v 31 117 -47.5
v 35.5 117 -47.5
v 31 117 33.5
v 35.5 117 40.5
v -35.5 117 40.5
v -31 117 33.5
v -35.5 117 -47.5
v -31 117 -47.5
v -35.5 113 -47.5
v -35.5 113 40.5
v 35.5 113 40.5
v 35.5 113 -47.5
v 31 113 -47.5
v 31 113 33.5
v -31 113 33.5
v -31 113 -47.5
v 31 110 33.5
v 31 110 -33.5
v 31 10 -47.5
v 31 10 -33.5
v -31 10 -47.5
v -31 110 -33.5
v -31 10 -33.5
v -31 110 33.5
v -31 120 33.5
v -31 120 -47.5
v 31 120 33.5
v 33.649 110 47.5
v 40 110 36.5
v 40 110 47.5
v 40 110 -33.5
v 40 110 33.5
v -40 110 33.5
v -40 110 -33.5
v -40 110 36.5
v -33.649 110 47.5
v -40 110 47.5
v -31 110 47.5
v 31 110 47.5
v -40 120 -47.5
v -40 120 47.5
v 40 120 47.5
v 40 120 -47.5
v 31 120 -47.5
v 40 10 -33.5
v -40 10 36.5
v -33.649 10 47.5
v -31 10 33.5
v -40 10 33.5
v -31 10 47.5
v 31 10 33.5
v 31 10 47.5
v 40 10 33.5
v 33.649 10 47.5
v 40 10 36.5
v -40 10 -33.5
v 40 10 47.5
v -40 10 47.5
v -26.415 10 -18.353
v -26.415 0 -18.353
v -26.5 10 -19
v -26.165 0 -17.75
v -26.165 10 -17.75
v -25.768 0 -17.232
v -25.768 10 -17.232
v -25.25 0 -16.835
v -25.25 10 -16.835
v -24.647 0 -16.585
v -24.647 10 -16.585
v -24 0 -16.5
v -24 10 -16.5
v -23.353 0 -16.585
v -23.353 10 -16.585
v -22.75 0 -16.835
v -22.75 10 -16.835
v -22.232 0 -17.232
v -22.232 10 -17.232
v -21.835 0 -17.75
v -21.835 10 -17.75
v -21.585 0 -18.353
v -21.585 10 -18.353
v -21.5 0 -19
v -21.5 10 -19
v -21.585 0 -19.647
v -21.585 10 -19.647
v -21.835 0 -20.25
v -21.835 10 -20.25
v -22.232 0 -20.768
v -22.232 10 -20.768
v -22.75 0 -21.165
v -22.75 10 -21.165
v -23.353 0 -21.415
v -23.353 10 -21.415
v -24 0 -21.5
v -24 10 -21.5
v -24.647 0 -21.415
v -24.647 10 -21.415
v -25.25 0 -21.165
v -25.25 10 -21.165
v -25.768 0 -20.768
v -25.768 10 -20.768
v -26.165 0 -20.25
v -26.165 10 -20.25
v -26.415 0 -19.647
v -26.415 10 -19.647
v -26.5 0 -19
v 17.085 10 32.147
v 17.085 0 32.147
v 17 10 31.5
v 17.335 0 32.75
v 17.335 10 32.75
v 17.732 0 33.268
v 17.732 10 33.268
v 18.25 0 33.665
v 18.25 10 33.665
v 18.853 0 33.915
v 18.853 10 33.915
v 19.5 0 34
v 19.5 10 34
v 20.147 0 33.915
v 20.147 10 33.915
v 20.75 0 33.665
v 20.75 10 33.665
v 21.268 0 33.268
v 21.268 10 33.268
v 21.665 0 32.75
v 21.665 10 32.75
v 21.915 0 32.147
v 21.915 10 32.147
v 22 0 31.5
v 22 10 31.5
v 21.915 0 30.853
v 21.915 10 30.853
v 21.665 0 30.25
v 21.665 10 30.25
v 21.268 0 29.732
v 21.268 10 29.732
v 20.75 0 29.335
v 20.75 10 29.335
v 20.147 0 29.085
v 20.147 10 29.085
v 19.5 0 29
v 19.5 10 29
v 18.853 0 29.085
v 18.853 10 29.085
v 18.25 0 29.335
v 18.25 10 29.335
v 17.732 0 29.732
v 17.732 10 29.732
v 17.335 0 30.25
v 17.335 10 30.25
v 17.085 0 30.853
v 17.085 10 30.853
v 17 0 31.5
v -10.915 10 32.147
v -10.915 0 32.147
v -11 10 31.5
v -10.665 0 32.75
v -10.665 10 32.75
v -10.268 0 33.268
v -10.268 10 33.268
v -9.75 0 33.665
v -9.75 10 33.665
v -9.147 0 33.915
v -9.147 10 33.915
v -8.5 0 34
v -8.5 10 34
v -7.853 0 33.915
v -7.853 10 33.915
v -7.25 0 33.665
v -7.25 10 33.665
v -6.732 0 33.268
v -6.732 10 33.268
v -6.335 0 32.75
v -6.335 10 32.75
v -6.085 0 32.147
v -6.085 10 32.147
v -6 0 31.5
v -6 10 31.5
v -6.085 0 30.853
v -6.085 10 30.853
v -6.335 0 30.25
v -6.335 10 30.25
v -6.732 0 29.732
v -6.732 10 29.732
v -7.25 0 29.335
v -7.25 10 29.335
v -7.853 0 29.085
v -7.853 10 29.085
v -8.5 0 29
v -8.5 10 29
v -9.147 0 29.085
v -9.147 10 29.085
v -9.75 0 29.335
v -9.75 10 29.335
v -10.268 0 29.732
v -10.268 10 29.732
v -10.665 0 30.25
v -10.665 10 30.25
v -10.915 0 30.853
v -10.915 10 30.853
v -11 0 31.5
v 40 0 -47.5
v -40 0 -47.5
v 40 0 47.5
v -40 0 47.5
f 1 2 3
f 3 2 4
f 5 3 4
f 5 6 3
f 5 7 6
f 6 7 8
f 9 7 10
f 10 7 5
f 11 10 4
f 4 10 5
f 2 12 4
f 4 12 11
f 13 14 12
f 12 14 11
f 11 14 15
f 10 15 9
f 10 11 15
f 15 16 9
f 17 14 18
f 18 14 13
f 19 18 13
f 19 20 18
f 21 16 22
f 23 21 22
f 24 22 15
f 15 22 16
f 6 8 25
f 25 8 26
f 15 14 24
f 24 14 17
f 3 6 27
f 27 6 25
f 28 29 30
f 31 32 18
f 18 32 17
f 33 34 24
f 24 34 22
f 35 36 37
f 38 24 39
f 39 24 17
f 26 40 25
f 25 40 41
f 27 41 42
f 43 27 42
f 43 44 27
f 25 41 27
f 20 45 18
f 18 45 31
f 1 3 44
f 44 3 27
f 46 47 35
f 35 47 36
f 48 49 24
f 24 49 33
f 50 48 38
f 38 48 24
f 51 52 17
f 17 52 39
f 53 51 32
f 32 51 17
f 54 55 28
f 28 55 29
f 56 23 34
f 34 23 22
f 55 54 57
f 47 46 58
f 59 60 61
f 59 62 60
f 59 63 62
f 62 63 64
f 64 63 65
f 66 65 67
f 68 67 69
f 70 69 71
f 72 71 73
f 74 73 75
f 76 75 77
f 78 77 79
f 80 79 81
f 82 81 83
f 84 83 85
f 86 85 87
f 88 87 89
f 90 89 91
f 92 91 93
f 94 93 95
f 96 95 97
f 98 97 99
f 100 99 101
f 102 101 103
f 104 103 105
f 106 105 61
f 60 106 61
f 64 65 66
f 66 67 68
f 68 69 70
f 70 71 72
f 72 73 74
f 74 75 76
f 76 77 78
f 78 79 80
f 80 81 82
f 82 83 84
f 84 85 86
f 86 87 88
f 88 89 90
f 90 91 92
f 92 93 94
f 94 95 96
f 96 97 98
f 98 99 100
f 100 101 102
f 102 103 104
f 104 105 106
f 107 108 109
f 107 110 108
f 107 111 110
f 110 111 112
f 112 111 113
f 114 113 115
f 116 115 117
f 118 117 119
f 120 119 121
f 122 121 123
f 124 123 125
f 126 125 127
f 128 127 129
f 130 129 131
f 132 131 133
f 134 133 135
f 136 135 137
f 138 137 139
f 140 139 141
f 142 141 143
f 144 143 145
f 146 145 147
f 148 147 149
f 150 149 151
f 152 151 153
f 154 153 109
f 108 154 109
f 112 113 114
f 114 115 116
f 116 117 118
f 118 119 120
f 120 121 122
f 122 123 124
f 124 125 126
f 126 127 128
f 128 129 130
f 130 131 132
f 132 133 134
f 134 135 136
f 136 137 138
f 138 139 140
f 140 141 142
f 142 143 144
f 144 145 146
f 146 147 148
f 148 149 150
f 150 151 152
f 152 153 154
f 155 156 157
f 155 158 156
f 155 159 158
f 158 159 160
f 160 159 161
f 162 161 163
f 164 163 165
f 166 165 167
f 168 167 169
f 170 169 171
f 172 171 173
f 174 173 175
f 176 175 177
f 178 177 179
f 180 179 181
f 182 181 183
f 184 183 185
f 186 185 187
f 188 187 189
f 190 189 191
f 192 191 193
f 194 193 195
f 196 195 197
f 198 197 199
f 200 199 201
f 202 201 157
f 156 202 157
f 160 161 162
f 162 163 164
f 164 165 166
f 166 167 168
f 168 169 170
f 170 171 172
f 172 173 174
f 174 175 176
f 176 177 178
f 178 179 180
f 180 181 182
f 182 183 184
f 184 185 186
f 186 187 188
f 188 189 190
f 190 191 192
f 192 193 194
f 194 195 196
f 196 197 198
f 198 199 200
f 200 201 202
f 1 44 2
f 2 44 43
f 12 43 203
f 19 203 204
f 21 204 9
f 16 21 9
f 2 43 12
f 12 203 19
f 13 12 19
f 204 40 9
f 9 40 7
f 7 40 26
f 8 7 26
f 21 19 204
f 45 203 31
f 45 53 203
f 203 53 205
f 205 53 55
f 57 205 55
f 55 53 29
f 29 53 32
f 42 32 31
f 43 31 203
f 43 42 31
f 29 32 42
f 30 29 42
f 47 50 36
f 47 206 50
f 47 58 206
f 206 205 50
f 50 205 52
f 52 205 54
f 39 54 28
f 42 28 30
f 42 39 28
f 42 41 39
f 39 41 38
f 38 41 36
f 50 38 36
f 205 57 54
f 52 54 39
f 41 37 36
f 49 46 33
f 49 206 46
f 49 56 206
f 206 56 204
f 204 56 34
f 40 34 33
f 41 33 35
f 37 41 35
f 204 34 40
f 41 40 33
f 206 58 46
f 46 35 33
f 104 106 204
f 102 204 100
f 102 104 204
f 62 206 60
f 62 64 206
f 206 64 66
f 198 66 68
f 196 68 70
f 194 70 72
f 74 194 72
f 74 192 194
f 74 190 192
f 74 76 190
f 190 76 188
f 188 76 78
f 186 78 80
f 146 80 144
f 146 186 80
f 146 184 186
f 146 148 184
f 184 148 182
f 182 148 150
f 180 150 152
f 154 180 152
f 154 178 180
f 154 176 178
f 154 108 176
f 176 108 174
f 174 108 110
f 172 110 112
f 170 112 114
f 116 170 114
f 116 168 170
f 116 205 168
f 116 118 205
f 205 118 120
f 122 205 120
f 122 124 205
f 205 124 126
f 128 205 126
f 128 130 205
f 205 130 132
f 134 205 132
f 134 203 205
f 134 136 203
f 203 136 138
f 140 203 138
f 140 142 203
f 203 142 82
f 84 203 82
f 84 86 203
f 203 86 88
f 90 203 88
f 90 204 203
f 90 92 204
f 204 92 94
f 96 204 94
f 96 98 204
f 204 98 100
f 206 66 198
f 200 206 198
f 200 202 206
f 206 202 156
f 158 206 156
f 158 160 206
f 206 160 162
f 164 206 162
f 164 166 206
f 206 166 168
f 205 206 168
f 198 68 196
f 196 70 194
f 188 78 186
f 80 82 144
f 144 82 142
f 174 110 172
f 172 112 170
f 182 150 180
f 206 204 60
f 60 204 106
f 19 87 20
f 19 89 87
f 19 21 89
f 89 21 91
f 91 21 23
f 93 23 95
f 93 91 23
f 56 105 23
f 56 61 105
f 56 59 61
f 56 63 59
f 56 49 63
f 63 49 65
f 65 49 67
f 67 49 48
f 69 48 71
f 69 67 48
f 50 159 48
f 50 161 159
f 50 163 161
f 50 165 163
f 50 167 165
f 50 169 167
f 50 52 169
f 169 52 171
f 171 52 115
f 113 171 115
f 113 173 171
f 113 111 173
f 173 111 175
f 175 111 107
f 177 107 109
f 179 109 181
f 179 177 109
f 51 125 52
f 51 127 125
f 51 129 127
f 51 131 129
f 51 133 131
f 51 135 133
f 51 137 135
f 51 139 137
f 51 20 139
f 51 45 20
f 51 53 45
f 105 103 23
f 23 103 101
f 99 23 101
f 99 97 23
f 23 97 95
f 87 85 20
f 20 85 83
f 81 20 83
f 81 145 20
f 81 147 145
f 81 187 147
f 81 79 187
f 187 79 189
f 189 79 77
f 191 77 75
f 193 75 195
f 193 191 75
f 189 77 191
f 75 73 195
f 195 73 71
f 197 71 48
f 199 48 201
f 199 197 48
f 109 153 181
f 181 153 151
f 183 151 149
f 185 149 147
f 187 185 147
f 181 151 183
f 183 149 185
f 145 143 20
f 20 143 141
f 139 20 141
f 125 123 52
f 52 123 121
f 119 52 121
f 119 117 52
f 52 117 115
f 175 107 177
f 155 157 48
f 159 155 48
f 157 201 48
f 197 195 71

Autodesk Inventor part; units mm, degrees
ref_plane "YZ Plane" through (0, 0, 0) normal (1, 0, 0) x (0, 1, 0)
ref_plane "XZ Plane" through (0, 0, 0) normal (0, 1, 0) x (-1, 0, 0)
ref_plane "XY Plane" through (0, 0, 0) normal (0, 0, 1) x (1, 0, 0)
sketch "Sketch1" plane through (0, 0, 0) normal (0, 1, 0) x (-1, 0, 0)
  line L0 (-40, -47.5) -> (40, -47.5)
  line L1 (40, -47.5) -> (40, 47.5)
  line L2 (40, 47.5) -> (-40, 47.5)
  line L3 (-40, 47.5) -> (-40, -47.5)
  line L4 (-40, -47.5) -> (40, 47.5) construction
  line L5 (40, -47.5) -> (-40, 47.5) construction
  line L6 (0, 0) -> (0, -31.5)
  line L7 (0, -31.5) -> (8.5, -31.5)
  line L8 (0, 0) -> (2.25, 0)
  line L9 (0, 0) -> (0, 17.5)
  line L10 (0, 17.5) -> (0, 19)
  line L11 (0, 19) -> (24, 19)
  line L12 (0, -17.5) -> (0, -19)
  line L13 (0, 31.5) -> (-19.5, 31.5)
  line L14 (0, 0) -> (0, 31.5)
  line L15 (0, 31.5) -> (8.5, 31.5)
  circle A0 centre (8.5, 31.5) radius 2.5
  line L16 (0, -19) -> (24, -19)
  circle A1 centre (24, -19) radius 2.5
  line L17 (0, 0) -> (0, -17.5)
  circle A2 centre (-19.5, 31.5) radius 2.5
  circle A3 centre (-19.5, 31.5) radius 2.5
  point P0 (0.5, 0.75)
  point P1 (0.5, -0.75)
  dimension "d0" = 80
  dimension "d1" = 95
  dimension "d2" = 17.5
  dimension "d3" = 8.5
  dimension "d5" = 31.5
  dimension "d6" = 24
  dimension "d7" = 2.25
  dimension "d12" = 19.5
extrude "Extrusion1" add sketch "Sketch1" along normal blind 10
sketch "Sketch2" plane through (0, 10, 0) normal (0, 1, 0) x (1, 0, 0)
  line L0 (-40, -47.5) -> (40, -47.5) projected
  line L1 (-40, -47.5) -> (-40, -36.5)
  line L2 (-40, 47.5) -> (-40, -47.5) projected
  line L3 (-40, -36.5) -> (-33.6491, -47.5)
  line L4 (-40, -36.5) -> (-27.2983, -36.5) construction
  line L5 (-33.6491, -47.5) -> (-33.6491, -43.5)
  line L6 (-40, -36.5) -> (-40, -33.5)
  line L7 (-33.6491, -47.5) -> (-33.6491, -45.5)
  line L8 (-32.6491, -47.5) -> (-31.6491, -47.5)
  line L9 (0, 0) -> (0, -47.5)
  line L10 (-40, -33.5) -> (-31, -33.5)
  line L11 (-31, -33.5) -> (-31, -47.5)
  line L12 (-33.6491, -47.5) -> (-31, -47.5)
  line L13 (40, -47.5) -> (40, -36.5)
  line L14 (40, -36.5) -> (33.6491, -47.5)
  line L15 (40, -36.5) -> (27.2983, -36.5) construction
  line L16 (33.6491, -47.5) -> (33.6491, -43.5)
  line L17 (40, -36.5) -> (40, -33.5)
  line L18 (33.6491, -47.5) -> (33.6491, -45.5)
  line L19 (32.6491, -47.5) -> (31.6491, -47.5)
  line L20 (40, -33.5) -> (31, -33.5)
  line L21 (31, -33.5) -> (31, -47.5)
  line L22 (33.6491, -47.5) -> (31, -47.5)
  line L23 (-40, 47.5) -> (-31, 47.5)
  line L24 (-31, 47.5) -> (-31, 33.5)
  line L25 (-31, 33.5) -> (-40, 33.5)
  line L26 (-40, 33.5) -> (-40, 47.5)
  line L27 (40, -47.5) -> (40, 47.5) projected
  line L28 (40, 47.5) -> (31, 47.5)
  line L29 (31, 47.5) -> (31, 33.5)
  line L30 (31, 33.5) -> (40, 33.5)
  line L31 (40, 33.5) -> (40, 47.5)
  dimension "d15" = 11
  dimension "d16" = 60
  dimension "d18" = 3
  dimension "d20" = 2
  dimension "d21" = 9
  dimension "d22" = 9
  dimension "d23" = 14
  dimension "d24" = 9
  dimension "d25" = 14
extrude "Extrusion2" add sketch "Sketch2" along normal blind 100 contours L2 L23 L24 L25 | L30 L29 L28 L27 | L21 L20 L17 L14 L0 | L3 L2 L10 L11 L0
sketch "Sketch4" plane through (0, 110, 0) normal (0, 1, 0) x (1, 0, 0)
  line L0 (-40, 47.5) -> (-40, 33.5) projected
  line L1 (-40, 33.5) -> (-31, 33.5) projected
  line L2 (-31, 33.5) -> (-31, 47.5) projected
  line L3 (-31, 47.5) -> (-40, 47.5) projected
  line L4 (40, 47.5) -> (31, 47.5) projected
  line L5 (31, 47.5) -> (31, 33.5) projected
  line L6 (31, 33.5) -> (40, 33.5) projected
  line L7 (40, 33.5) -> (40, 47.5) projected
  line L8 (33.6491, -47.5) -> (40, -36.5) projected
  line L9 (40, -36.5) -> (40, -33.5) projected
  line L10 (40, -33.5) -> (31, -33.5) projected
  line L11 (31, -33.5) -> (31, -47.5) projected
  line L12 (31, -47.5) -> (33.6491, -47.5) projected
  line L13 (-31, -47.5) -> (-31, -33.5) projected
  line L14 (-33.6491, -47.5) -> (-31, -47.5) projected
  line L15 (-31, -47.5) -> (-31, -33.5) projected
  line L16 (-31, -33.5) -> (-40, -33.5) projected
  line L17 (-40, -33.5) -> (-40, -36.5) projected
  line L18 (-40, -36.5) -> (-33.6491, -47.5) projected
  line L19 (-33.6491, -47.5) -> (-40, -36.5) projected
  line L20 (-40, -36.5) -> (-40, -47.5) projected
  line L21 (-40, -47.5) -> (-33.6491, -47.5) projected
  line L22 (40, -36.5) -> (33.6491, -47.5) projected
  line L23 (33.6491, -47.5) -> (40, -47.5) projected
  line L24 (40, -47.5) -> (40, -36.5) projected
  line L25 (-40, 47.5) -> (40, 47.5) projected
  line L26 (-40, 47.5) -> (-40, -47.5)
  line L27 (40, -47.5) -> (-40, -47.5) projected
  line L28 (-40, -47.5) -> (40, -47.5)
  line L29 (40, -47.5) -> (40, 47.5)
  line L30 (31, 33.5) -> (31, 47.5) projected
  line L31 (31, 47.5) -> (40, 47.5)
  line L32 (31, 47.5) -> (31, -33.5)
  line L33 (40, -33.5) -> (31, -33.5) projected
  line L34 (-40, -33.5) -> (-31, -33.5) projected
  line L35 (31, -33.5) -> (-31, -33.5)
  line L36 (-31, -33.5) -> (-31, 47.5)
  line L37 (-31, 47.5) -> (-31, 33.5) projected
  line L38 (-40, 47.5) -> (-31, 47.5)
  line L39 (-31, 47.1909) -> (-31, 33.5)
  line L40 (-40, 47.5) -> (-40, 33.5) projected
  line L41 (-31, 33.5) -> (-40, 33.5)
  line L42 (31, 33.5) -> (40, 33.5) projected
  line L43 (31, 33.5) -> (40, 33.5)
  point P0 (0, 0)
extrude "Extrusion3" add sketch "Sketch4" along normal blind 10 contours L3 L2 L1 L0 | L1 L36 L16 L26 | L16 L13 L14 L18 L17 | L4 L7 L6 L5 | L35 L11 L27 L13 | L18 L21 L20 | L6 L29 L10 L32 | L10 L9 L8 L12 L11 | L8 L24 L23
sketch "Sketch5" plane through (40, 0, -47.5) normal (0, 0, -1) x (-1, 0, 0)
  line L0 (80, 0) -> (0, 0) projected
  line L1 (80, 0) -> (80, 120) projected
  line L2 (71, 120) -> (80, 120) projected
  line L3 (71, 10) -> (71, 120) projected
  line L4 (9, 10) -> (71, 10) projected
  line L5 (9, 10) -> (9, 120) projected
  line L6 (0, 120) -> (9, 120) projected
  line L7 (0, 0) -> (0, 120) projected
  line L8 (9, 110) -> (71, 110) projected
  line L9 (71, 110) -> (71, 120) projected
  line L10 (9, 120) -> (71, 120) projected
  line L11 (9, 110) -> (9, 120) projected
  line L12 (9, 110) -> (9, 113)
  line L13 (9, 10) -> (9, 120) projected
  line L14 (9, 113) -> (4.5, 113)
  line L15 (4.5, 113) -> (4.5, 117)
  line L16 (4.5, 117) -> (9, 117)
  line L17 (9, 117) -> (9, 113)
  line L18 (9, 117) -> (9, 113)
  line L19 (9, 113) -> (71, 113)
  line L20 (71, 10) -> (71, 120) projected
  line L21 (71, 113) -> (75.5, 113)
  line L22 (75.5, 113) -> (75.5, 117)
  line L23 (75.5, 117) -> (71, 117)
  line L24 (71, 113) -> (71, 117)
  line L25 (71, 113) -> (71, 117)
  line L26 (8.545, 117) -> (71, 117)
  point P0 (40, 0)
  dimension "d30" = 3
  dimension "d31" = 4
  dimension "d32" = 4
extrude "Extrusion4" cut sketch "Sketch5" against normal blind 88 contours L23 L22 L21 L3 | L3 L19 L5 L26 | L5 L14 L15 L16
sketch "Sketch6" plane through (0, 0, 0) normal (0, -1, 0) x (1, 0, 0)
  point P0 (0, 0)
